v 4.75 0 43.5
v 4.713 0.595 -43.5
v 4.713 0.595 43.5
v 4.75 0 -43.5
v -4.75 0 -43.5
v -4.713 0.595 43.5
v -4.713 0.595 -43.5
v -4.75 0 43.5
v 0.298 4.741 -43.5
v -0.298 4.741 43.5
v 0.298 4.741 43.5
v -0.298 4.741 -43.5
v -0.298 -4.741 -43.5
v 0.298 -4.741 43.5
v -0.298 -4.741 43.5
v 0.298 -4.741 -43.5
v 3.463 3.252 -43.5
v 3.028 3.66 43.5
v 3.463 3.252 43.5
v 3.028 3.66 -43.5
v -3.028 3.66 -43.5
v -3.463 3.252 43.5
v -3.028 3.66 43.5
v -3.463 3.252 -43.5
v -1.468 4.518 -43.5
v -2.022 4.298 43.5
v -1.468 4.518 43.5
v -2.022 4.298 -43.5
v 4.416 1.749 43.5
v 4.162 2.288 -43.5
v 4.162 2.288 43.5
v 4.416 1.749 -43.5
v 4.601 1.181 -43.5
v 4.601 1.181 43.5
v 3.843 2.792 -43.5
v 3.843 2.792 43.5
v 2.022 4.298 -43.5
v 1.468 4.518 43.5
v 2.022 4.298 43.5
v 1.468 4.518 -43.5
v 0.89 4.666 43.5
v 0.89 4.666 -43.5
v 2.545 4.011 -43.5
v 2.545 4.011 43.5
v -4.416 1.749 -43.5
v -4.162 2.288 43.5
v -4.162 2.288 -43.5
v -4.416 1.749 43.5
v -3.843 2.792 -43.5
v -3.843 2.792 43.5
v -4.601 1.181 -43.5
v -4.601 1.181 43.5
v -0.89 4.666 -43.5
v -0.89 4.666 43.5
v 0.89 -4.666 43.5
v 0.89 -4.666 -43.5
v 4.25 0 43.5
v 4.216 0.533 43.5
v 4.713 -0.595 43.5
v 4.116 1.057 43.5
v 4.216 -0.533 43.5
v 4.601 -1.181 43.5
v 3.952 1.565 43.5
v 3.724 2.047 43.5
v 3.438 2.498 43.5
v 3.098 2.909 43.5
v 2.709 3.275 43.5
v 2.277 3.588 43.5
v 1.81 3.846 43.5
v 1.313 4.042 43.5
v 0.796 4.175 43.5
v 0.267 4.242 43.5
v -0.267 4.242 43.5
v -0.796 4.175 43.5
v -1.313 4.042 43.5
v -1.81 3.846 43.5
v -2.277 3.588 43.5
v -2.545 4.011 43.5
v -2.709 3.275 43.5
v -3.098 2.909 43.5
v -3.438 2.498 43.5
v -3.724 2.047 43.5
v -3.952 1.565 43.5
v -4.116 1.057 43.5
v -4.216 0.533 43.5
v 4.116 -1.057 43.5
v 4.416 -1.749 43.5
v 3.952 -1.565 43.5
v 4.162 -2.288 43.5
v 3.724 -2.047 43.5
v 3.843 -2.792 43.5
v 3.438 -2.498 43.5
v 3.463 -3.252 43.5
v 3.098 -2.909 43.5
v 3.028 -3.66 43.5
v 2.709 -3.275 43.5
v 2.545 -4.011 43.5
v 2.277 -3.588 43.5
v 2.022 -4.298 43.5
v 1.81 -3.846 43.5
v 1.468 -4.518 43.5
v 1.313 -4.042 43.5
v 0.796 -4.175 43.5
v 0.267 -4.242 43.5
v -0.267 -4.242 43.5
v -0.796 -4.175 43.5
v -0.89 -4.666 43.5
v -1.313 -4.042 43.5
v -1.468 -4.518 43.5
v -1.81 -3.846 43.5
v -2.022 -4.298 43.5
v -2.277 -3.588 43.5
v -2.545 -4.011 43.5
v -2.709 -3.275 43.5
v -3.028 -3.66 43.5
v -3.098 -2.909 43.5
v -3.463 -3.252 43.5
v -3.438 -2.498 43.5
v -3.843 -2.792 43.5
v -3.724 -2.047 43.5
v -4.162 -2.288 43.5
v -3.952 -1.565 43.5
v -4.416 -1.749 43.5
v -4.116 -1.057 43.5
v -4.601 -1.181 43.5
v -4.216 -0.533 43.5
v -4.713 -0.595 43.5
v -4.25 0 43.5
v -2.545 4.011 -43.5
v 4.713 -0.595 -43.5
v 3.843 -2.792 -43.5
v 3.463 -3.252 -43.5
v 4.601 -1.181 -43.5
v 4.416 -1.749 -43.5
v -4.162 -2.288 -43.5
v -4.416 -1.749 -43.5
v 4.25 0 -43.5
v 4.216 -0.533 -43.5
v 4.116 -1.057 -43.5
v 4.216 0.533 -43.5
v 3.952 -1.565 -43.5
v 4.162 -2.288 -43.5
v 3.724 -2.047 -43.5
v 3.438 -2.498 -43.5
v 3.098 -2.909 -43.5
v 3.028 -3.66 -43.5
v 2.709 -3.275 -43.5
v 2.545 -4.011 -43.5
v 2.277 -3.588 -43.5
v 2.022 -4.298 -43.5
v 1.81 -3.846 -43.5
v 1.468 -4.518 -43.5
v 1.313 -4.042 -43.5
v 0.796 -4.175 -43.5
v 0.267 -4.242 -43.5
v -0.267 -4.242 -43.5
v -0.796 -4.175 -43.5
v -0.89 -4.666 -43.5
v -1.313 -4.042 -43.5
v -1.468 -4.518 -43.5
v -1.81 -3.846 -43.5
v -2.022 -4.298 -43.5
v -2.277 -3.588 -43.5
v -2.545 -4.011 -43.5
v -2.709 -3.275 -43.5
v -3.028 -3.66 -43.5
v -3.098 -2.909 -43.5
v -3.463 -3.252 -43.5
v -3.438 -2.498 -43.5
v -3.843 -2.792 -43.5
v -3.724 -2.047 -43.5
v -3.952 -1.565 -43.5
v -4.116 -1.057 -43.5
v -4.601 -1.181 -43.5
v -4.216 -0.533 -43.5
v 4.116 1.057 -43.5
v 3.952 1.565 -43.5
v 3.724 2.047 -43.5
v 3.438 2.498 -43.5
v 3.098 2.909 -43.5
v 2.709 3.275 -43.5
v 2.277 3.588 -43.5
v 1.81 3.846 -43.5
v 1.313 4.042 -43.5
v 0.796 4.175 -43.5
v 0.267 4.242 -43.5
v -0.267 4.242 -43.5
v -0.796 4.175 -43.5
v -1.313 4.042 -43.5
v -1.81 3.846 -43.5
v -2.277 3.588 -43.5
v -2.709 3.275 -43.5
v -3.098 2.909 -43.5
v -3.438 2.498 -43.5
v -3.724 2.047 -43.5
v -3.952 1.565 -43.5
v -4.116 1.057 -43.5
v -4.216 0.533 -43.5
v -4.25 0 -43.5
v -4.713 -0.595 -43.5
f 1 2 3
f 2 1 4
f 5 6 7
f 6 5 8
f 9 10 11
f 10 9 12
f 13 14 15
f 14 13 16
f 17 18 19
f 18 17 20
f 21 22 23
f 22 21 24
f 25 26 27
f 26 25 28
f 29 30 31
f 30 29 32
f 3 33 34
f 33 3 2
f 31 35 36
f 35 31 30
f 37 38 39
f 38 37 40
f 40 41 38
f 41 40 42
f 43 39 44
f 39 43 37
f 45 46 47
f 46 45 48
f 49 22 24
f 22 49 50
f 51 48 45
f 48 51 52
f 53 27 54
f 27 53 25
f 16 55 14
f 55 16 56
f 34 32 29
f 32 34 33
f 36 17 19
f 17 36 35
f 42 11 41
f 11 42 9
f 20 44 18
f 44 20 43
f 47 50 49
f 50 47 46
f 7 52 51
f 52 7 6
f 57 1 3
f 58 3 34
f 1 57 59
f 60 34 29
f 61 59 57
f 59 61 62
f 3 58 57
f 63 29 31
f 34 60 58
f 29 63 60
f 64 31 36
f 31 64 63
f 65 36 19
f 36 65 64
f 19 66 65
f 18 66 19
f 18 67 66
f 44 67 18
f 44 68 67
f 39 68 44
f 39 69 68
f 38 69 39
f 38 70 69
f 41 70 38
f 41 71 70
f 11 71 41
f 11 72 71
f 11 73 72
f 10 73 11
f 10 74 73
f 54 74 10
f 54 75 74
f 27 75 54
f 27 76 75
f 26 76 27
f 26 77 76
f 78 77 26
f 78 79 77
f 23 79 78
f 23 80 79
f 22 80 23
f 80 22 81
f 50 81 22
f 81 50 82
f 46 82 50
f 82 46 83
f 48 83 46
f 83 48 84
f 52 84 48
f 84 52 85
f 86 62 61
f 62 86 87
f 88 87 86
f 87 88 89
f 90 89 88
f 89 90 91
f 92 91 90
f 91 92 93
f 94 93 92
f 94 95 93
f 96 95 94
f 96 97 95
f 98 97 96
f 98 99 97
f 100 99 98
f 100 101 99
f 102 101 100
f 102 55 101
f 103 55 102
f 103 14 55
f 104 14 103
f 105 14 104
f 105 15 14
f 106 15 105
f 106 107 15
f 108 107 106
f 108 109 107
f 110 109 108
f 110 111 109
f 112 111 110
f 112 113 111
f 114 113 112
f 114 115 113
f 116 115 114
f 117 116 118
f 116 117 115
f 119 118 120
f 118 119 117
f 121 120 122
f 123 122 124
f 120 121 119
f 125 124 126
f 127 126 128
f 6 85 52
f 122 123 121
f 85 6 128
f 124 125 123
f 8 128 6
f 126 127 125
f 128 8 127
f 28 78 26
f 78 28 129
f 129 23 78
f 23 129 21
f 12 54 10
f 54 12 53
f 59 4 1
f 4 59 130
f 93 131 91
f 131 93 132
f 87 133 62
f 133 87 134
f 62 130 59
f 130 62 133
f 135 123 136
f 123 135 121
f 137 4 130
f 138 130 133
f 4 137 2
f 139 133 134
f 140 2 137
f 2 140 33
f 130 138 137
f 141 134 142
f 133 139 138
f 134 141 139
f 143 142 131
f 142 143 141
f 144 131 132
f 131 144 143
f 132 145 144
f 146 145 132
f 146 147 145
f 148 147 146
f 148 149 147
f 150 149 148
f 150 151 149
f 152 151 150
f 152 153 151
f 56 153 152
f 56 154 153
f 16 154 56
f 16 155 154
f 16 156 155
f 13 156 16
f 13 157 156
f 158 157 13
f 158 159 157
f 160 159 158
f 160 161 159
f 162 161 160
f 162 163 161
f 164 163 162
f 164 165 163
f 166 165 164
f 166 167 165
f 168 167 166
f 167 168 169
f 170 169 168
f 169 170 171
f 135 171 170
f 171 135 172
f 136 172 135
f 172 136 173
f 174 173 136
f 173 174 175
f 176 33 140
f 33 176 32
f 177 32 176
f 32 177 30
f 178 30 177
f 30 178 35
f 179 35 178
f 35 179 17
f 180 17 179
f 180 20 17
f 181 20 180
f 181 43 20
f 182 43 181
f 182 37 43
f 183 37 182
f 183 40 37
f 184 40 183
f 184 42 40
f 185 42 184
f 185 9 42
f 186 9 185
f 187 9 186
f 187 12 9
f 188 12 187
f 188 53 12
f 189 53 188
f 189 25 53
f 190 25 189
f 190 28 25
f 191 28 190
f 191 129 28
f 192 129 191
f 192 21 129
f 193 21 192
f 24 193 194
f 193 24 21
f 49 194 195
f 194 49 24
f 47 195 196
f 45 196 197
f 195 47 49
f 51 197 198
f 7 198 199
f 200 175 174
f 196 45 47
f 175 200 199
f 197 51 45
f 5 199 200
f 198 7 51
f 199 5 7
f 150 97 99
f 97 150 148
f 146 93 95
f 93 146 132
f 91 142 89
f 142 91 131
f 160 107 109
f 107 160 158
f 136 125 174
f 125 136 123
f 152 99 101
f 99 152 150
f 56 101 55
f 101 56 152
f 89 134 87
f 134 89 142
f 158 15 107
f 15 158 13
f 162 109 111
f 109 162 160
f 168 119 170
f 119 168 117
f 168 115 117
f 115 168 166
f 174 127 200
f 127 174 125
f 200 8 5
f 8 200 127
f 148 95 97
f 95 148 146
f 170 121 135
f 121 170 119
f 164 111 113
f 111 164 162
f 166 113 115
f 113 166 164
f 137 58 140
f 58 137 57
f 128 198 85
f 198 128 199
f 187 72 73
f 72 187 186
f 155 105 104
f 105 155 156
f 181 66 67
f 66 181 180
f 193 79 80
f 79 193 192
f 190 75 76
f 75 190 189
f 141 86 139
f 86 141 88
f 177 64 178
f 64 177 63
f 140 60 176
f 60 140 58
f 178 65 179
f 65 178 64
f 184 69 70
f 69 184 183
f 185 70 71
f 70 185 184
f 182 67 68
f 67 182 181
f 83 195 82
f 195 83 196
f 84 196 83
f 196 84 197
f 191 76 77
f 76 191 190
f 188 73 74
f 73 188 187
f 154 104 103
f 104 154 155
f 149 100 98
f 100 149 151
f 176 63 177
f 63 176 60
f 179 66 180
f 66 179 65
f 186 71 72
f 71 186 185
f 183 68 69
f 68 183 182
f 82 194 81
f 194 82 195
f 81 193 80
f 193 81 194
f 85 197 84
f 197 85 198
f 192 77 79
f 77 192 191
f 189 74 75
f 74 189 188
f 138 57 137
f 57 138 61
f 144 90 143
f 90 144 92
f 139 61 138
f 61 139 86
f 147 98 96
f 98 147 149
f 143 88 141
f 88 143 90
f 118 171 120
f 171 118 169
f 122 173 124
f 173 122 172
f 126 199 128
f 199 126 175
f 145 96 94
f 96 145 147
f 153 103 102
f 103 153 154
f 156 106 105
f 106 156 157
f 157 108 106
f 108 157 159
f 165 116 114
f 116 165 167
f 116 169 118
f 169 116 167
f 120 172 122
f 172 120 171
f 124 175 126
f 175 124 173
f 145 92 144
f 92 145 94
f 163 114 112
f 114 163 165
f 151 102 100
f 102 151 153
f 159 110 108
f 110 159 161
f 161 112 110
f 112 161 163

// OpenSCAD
$fn = 50;


difference() {
	union() {
		translate(v = [0, 0, -43.5000000000]) {
			cylinder(h = 87, r = 4.7500000000);
		}
	}
	union() {
		translate(v = [0, 0, -100.0000000000]) {
			cylinder(h = 200, r = 4.2500000000);
		}
	}
}
